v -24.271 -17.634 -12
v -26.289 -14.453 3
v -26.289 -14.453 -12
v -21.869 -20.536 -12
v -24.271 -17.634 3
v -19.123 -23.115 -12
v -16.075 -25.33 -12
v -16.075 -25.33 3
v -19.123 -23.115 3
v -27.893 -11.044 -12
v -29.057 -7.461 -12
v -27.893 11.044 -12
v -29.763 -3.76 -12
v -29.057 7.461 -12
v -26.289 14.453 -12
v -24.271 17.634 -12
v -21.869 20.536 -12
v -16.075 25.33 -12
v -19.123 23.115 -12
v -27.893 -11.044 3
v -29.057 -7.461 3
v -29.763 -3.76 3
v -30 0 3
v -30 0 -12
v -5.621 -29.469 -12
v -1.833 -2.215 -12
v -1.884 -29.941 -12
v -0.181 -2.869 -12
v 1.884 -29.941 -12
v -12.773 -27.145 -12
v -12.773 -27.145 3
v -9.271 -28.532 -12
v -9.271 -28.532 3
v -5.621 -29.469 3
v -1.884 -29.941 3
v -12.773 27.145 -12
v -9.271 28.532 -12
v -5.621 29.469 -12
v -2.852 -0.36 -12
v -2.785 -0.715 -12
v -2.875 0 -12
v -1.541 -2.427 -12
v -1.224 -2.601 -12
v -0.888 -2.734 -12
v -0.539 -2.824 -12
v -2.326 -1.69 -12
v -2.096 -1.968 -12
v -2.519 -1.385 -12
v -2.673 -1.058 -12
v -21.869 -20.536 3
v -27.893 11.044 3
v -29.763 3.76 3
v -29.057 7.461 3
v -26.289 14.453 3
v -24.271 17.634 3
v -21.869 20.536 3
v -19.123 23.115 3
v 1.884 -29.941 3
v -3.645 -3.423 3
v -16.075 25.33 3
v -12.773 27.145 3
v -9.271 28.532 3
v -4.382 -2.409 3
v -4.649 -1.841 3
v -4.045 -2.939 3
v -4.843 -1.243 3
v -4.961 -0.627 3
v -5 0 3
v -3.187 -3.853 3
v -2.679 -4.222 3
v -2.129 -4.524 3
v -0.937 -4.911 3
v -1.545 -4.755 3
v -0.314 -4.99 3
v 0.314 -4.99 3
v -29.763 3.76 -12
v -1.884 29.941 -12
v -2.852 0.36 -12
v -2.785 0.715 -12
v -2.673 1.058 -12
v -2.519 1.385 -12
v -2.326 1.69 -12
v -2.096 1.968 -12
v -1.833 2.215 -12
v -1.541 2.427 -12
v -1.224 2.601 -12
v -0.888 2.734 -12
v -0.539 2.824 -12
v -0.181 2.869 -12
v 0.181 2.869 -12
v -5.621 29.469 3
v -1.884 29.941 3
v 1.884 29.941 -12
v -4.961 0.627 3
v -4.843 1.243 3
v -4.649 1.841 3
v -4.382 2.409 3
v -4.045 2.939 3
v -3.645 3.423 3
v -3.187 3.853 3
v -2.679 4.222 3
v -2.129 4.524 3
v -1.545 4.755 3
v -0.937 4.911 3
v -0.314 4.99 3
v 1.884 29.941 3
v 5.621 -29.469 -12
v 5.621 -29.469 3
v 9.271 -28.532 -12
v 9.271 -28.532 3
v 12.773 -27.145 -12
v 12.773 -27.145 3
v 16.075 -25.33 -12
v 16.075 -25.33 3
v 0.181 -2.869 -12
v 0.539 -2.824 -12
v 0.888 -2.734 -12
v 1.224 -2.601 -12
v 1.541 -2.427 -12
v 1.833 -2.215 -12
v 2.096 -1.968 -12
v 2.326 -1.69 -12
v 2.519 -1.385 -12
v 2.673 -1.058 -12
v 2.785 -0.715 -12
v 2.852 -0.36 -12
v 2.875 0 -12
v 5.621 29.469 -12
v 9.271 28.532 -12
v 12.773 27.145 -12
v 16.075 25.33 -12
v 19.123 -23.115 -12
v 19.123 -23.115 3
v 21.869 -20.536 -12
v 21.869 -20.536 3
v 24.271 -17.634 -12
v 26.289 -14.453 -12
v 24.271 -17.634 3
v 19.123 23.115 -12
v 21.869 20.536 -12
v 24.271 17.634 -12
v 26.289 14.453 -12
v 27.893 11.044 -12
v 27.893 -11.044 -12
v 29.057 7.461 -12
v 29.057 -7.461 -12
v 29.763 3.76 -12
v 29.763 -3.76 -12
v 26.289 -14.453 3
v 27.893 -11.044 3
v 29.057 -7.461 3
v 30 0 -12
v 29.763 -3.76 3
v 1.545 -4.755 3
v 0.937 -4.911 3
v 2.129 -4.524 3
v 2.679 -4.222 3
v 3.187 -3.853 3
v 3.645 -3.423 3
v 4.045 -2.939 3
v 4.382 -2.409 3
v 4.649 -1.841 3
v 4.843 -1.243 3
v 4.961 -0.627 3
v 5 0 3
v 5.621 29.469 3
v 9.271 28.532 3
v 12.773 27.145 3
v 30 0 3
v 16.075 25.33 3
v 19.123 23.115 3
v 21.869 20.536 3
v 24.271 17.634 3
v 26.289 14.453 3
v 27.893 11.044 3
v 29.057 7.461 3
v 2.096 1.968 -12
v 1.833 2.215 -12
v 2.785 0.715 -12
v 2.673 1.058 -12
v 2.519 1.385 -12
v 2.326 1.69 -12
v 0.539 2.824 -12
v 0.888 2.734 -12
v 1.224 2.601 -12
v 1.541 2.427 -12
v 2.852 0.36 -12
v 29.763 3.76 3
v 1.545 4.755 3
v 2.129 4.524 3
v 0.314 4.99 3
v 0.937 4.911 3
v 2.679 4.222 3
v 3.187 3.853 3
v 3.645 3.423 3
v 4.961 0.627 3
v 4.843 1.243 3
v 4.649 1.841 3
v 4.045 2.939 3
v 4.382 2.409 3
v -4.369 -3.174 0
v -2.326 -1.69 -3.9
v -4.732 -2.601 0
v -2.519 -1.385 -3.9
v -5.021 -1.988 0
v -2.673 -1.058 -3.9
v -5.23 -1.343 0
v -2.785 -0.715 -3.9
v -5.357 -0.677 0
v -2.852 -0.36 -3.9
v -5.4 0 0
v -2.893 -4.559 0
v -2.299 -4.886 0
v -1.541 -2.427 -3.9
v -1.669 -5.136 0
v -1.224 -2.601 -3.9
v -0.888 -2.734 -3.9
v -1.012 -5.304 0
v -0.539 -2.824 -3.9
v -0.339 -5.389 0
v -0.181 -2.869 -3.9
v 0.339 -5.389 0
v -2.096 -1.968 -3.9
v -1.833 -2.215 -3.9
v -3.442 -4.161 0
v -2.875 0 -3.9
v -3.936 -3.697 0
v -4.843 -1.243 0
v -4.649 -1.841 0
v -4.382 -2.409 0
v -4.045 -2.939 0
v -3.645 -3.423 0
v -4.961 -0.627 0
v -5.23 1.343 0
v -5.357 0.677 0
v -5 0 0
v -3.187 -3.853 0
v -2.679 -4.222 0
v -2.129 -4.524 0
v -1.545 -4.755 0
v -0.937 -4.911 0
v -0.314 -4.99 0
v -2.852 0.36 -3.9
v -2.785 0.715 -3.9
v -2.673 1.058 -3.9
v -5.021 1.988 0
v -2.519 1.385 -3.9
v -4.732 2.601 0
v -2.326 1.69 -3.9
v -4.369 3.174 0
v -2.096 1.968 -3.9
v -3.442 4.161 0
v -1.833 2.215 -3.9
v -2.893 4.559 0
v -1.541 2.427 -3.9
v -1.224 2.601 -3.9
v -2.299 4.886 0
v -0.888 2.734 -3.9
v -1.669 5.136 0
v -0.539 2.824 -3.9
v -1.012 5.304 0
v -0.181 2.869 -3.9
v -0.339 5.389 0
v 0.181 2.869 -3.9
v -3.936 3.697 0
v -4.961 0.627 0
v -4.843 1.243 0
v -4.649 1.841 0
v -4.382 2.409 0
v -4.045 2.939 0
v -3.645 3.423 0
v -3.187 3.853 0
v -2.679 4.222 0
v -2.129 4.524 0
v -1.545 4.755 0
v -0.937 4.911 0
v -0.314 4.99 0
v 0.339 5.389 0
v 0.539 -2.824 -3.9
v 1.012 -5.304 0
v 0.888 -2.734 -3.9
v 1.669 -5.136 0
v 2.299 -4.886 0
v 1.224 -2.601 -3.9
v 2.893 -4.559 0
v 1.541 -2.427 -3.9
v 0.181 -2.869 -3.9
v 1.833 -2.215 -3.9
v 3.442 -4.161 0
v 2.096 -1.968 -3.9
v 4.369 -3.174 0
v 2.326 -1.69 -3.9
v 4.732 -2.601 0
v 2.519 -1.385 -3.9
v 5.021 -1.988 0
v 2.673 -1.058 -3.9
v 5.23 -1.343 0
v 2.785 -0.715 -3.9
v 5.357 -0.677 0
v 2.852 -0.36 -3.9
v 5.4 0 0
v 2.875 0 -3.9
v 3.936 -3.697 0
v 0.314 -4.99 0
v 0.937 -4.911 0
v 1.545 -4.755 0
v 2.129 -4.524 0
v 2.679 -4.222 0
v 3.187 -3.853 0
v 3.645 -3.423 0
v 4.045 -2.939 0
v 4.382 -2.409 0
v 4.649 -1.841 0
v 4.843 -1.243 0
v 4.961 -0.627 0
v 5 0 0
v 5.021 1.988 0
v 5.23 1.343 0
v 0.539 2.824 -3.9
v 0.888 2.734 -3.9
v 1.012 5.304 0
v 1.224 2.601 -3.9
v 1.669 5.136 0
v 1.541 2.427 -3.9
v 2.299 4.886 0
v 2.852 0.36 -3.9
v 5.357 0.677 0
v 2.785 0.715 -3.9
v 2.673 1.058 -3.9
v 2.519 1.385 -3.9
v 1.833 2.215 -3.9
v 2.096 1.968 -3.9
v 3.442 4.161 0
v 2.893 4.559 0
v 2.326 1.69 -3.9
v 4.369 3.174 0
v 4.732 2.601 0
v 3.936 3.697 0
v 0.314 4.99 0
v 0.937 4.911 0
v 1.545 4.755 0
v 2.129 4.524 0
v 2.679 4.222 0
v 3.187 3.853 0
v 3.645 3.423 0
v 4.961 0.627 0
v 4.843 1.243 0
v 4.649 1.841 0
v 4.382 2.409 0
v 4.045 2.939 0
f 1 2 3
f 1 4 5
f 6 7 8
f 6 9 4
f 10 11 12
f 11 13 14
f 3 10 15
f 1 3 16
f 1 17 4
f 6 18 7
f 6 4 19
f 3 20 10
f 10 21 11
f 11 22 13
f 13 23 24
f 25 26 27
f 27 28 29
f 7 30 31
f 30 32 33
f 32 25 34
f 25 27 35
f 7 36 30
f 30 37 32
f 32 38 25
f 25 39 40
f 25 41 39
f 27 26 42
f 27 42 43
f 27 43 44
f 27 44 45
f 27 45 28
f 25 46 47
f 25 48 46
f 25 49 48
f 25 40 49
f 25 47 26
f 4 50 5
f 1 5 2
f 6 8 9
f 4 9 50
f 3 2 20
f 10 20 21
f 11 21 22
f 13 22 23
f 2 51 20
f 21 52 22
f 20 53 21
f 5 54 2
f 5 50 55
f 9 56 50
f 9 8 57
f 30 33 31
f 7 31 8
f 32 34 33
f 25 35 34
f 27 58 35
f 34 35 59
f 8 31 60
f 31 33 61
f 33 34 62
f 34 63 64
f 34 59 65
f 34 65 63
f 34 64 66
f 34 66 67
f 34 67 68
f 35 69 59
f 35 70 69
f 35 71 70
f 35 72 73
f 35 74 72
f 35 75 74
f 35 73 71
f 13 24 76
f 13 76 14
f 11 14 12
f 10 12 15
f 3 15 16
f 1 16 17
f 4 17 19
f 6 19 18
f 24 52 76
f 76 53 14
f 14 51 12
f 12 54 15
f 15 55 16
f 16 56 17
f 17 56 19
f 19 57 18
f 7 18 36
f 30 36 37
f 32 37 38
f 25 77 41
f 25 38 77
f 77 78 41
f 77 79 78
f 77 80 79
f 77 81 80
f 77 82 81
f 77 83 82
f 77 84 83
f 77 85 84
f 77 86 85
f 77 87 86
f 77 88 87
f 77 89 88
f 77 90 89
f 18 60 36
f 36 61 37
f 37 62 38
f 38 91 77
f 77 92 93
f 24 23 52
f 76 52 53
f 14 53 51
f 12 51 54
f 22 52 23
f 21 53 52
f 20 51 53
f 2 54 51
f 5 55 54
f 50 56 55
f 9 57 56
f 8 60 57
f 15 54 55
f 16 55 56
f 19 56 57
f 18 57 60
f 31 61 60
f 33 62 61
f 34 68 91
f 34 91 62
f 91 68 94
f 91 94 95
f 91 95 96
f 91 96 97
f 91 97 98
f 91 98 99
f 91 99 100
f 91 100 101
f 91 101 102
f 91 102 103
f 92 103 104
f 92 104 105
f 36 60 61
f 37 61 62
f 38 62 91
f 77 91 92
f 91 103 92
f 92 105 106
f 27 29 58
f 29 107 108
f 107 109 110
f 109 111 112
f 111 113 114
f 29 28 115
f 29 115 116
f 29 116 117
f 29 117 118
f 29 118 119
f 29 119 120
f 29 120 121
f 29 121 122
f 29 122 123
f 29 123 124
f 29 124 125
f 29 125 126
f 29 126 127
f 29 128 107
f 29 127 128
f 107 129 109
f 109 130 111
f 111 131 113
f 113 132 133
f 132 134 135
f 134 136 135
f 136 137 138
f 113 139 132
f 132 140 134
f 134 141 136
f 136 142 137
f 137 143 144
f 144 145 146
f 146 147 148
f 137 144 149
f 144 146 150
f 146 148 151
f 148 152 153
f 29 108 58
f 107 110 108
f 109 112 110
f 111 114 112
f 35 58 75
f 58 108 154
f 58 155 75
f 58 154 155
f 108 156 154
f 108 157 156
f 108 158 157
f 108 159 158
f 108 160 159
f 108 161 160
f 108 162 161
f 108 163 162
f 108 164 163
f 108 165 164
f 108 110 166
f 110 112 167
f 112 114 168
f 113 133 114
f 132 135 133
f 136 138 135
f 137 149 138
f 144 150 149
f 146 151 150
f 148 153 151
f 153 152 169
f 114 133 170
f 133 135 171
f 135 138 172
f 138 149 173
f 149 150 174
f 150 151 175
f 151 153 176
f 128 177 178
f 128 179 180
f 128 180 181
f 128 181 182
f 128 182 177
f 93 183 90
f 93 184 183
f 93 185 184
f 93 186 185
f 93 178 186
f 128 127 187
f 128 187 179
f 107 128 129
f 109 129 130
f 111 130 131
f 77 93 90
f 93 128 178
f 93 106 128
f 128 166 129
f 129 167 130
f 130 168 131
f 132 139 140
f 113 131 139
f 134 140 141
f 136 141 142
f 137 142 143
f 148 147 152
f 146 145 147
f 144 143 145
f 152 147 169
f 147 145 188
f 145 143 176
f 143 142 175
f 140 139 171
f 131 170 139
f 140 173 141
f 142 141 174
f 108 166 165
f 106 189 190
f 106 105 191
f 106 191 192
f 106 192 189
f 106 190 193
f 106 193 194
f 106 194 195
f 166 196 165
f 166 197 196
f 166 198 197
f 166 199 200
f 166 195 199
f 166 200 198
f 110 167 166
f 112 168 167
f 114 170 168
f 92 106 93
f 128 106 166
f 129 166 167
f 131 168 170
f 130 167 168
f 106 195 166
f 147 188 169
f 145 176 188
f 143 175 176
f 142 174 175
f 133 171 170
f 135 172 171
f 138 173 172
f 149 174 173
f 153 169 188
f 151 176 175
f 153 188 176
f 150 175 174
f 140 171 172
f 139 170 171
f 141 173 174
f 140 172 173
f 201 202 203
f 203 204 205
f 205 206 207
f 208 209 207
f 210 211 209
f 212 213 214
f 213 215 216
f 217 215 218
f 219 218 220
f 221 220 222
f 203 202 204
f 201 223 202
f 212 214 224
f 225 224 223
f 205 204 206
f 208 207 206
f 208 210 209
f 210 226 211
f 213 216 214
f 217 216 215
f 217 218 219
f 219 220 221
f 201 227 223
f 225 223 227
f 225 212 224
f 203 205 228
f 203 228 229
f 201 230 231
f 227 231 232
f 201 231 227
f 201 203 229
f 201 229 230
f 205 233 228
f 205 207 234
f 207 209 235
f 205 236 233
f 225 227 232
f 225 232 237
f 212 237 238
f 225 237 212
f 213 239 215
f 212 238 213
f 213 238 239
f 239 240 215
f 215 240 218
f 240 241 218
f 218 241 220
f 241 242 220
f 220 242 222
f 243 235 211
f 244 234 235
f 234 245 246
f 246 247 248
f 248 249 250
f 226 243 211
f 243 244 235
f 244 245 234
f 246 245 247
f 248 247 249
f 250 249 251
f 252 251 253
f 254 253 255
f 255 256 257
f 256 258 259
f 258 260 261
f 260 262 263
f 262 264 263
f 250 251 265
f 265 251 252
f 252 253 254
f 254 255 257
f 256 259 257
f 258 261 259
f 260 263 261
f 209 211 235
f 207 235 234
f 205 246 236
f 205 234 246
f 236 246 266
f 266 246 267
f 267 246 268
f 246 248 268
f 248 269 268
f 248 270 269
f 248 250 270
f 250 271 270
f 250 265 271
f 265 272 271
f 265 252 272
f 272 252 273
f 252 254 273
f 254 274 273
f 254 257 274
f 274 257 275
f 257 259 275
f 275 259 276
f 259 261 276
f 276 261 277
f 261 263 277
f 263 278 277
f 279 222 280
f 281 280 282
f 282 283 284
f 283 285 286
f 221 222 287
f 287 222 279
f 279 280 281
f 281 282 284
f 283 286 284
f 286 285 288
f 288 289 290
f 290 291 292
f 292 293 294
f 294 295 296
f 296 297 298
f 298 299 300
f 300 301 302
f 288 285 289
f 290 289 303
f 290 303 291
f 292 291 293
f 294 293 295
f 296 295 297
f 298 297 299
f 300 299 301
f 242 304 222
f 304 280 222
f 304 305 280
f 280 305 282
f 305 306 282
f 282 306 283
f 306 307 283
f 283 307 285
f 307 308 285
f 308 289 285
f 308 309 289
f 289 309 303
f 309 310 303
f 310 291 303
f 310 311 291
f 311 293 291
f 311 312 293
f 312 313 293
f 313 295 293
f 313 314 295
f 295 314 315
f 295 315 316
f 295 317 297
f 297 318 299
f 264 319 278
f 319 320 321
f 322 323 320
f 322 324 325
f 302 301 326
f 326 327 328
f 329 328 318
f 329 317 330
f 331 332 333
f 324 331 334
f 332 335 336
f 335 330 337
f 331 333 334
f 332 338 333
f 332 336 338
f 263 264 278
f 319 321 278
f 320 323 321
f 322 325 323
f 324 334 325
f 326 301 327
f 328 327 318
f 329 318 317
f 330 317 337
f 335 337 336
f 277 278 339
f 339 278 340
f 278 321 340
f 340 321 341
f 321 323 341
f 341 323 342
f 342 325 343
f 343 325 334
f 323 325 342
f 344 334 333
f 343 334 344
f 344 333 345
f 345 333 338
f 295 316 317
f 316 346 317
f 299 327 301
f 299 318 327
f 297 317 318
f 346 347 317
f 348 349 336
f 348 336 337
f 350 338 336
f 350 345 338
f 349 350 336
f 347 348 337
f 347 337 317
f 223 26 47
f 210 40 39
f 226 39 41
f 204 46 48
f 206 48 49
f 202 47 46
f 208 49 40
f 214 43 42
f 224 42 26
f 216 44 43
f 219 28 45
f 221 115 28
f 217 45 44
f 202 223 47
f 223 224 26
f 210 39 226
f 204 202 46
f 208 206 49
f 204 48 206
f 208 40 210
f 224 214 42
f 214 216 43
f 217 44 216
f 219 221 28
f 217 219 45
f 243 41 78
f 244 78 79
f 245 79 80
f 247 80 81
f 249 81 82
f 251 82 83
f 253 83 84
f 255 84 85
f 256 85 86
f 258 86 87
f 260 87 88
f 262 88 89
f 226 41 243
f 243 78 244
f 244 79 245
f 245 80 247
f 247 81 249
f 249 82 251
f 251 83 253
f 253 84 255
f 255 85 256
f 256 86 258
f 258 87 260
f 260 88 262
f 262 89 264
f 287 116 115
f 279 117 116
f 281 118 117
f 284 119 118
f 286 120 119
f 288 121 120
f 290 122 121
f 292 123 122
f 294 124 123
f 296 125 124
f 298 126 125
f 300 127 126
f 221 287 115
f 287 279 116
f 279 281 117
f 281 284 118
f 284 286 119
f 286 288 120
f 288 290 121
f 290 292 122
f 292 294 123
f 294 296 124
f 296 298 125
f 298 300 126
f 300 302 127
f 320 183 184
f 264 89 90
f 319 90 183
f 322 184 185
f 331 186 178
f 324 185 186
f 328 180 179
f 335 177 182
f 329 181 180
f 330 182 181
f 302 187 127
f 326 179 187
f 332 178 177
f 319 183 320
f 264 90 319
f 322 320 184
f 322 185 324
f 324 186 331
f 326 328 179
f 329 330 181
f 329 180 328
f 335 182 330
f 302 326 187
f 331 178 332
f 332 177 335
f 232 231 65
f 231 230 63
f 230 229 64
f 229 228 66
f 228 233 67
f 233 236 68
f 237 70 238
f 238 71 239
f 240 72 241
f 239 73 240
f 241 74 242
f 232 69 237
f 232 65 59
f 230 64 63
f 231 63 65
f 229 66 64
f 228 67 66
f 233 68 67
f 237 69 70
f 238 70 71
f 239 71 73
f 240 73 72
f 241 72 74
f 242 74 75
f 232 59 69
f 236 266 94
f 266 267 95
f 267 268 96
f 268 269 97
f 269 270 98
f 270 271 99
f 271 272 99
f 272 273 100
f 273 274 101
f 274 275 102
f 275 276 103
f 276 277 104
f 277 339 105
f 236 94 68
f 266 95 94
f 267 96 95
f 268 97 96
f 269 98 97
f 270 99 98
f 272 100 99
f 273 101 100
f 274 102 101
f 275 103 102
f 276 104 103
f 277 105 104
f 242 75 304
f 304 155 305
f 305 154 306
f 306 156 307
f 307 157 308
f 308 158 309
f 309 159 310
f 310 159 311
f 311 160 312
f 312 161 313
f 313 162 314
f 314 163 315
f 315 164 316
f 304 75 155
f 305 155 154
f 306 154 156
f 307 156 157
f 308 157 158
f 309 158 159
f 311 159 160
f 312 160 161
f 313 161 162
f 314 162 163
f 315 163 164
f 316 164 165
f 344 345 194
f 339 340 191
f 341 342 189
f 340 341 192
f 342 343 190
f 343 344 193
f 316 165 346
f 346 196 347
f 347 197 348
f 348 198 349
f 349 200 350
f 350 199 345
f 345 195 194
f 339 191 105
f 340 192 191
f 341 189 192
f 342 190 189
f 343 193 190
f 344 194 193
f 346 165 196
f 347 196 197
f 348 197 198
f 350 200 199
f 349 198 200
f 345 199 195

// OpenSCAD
$fn = 50;


difference() {
	union() {
		translate(v = [0, 0, -12.0000000000]) {
			cylinder(h = 15, r = 30.0000000000);
		}
		#translate(v = [0, 0, -15.0000000000]) {
			cylinder(h = 15, r = 2.8750000000);
		}
	}
	union() {
		translate(v = [0, 0, 0]) {
			rotate(a = [0, 0, 0]) {
				difference() {
					union() {
						translate(v = [0, 0, -15.0000000000]) {
							cylinder(h = 15, r = 2.6000000000);
						}
						translate(v = [0, 0, -3.9000000000]) {
							cylinder(h = 3.9000000000, r1 = 2.8750000000, r2 = 5.4000000000);
						}
						translate(v = [0, 0, -15.0000000000]) {
							cylinder(h = 15, r = 2.8750000000);
						}
						translate(v = [0, 0, -15.0000000000]) {
							cylinder(h = 15, r = 2.6000000000);
						}
					}
					union();
				}
			}
		}
		#cylinder(h = 3, r = 5.0000000000);
	}
}
